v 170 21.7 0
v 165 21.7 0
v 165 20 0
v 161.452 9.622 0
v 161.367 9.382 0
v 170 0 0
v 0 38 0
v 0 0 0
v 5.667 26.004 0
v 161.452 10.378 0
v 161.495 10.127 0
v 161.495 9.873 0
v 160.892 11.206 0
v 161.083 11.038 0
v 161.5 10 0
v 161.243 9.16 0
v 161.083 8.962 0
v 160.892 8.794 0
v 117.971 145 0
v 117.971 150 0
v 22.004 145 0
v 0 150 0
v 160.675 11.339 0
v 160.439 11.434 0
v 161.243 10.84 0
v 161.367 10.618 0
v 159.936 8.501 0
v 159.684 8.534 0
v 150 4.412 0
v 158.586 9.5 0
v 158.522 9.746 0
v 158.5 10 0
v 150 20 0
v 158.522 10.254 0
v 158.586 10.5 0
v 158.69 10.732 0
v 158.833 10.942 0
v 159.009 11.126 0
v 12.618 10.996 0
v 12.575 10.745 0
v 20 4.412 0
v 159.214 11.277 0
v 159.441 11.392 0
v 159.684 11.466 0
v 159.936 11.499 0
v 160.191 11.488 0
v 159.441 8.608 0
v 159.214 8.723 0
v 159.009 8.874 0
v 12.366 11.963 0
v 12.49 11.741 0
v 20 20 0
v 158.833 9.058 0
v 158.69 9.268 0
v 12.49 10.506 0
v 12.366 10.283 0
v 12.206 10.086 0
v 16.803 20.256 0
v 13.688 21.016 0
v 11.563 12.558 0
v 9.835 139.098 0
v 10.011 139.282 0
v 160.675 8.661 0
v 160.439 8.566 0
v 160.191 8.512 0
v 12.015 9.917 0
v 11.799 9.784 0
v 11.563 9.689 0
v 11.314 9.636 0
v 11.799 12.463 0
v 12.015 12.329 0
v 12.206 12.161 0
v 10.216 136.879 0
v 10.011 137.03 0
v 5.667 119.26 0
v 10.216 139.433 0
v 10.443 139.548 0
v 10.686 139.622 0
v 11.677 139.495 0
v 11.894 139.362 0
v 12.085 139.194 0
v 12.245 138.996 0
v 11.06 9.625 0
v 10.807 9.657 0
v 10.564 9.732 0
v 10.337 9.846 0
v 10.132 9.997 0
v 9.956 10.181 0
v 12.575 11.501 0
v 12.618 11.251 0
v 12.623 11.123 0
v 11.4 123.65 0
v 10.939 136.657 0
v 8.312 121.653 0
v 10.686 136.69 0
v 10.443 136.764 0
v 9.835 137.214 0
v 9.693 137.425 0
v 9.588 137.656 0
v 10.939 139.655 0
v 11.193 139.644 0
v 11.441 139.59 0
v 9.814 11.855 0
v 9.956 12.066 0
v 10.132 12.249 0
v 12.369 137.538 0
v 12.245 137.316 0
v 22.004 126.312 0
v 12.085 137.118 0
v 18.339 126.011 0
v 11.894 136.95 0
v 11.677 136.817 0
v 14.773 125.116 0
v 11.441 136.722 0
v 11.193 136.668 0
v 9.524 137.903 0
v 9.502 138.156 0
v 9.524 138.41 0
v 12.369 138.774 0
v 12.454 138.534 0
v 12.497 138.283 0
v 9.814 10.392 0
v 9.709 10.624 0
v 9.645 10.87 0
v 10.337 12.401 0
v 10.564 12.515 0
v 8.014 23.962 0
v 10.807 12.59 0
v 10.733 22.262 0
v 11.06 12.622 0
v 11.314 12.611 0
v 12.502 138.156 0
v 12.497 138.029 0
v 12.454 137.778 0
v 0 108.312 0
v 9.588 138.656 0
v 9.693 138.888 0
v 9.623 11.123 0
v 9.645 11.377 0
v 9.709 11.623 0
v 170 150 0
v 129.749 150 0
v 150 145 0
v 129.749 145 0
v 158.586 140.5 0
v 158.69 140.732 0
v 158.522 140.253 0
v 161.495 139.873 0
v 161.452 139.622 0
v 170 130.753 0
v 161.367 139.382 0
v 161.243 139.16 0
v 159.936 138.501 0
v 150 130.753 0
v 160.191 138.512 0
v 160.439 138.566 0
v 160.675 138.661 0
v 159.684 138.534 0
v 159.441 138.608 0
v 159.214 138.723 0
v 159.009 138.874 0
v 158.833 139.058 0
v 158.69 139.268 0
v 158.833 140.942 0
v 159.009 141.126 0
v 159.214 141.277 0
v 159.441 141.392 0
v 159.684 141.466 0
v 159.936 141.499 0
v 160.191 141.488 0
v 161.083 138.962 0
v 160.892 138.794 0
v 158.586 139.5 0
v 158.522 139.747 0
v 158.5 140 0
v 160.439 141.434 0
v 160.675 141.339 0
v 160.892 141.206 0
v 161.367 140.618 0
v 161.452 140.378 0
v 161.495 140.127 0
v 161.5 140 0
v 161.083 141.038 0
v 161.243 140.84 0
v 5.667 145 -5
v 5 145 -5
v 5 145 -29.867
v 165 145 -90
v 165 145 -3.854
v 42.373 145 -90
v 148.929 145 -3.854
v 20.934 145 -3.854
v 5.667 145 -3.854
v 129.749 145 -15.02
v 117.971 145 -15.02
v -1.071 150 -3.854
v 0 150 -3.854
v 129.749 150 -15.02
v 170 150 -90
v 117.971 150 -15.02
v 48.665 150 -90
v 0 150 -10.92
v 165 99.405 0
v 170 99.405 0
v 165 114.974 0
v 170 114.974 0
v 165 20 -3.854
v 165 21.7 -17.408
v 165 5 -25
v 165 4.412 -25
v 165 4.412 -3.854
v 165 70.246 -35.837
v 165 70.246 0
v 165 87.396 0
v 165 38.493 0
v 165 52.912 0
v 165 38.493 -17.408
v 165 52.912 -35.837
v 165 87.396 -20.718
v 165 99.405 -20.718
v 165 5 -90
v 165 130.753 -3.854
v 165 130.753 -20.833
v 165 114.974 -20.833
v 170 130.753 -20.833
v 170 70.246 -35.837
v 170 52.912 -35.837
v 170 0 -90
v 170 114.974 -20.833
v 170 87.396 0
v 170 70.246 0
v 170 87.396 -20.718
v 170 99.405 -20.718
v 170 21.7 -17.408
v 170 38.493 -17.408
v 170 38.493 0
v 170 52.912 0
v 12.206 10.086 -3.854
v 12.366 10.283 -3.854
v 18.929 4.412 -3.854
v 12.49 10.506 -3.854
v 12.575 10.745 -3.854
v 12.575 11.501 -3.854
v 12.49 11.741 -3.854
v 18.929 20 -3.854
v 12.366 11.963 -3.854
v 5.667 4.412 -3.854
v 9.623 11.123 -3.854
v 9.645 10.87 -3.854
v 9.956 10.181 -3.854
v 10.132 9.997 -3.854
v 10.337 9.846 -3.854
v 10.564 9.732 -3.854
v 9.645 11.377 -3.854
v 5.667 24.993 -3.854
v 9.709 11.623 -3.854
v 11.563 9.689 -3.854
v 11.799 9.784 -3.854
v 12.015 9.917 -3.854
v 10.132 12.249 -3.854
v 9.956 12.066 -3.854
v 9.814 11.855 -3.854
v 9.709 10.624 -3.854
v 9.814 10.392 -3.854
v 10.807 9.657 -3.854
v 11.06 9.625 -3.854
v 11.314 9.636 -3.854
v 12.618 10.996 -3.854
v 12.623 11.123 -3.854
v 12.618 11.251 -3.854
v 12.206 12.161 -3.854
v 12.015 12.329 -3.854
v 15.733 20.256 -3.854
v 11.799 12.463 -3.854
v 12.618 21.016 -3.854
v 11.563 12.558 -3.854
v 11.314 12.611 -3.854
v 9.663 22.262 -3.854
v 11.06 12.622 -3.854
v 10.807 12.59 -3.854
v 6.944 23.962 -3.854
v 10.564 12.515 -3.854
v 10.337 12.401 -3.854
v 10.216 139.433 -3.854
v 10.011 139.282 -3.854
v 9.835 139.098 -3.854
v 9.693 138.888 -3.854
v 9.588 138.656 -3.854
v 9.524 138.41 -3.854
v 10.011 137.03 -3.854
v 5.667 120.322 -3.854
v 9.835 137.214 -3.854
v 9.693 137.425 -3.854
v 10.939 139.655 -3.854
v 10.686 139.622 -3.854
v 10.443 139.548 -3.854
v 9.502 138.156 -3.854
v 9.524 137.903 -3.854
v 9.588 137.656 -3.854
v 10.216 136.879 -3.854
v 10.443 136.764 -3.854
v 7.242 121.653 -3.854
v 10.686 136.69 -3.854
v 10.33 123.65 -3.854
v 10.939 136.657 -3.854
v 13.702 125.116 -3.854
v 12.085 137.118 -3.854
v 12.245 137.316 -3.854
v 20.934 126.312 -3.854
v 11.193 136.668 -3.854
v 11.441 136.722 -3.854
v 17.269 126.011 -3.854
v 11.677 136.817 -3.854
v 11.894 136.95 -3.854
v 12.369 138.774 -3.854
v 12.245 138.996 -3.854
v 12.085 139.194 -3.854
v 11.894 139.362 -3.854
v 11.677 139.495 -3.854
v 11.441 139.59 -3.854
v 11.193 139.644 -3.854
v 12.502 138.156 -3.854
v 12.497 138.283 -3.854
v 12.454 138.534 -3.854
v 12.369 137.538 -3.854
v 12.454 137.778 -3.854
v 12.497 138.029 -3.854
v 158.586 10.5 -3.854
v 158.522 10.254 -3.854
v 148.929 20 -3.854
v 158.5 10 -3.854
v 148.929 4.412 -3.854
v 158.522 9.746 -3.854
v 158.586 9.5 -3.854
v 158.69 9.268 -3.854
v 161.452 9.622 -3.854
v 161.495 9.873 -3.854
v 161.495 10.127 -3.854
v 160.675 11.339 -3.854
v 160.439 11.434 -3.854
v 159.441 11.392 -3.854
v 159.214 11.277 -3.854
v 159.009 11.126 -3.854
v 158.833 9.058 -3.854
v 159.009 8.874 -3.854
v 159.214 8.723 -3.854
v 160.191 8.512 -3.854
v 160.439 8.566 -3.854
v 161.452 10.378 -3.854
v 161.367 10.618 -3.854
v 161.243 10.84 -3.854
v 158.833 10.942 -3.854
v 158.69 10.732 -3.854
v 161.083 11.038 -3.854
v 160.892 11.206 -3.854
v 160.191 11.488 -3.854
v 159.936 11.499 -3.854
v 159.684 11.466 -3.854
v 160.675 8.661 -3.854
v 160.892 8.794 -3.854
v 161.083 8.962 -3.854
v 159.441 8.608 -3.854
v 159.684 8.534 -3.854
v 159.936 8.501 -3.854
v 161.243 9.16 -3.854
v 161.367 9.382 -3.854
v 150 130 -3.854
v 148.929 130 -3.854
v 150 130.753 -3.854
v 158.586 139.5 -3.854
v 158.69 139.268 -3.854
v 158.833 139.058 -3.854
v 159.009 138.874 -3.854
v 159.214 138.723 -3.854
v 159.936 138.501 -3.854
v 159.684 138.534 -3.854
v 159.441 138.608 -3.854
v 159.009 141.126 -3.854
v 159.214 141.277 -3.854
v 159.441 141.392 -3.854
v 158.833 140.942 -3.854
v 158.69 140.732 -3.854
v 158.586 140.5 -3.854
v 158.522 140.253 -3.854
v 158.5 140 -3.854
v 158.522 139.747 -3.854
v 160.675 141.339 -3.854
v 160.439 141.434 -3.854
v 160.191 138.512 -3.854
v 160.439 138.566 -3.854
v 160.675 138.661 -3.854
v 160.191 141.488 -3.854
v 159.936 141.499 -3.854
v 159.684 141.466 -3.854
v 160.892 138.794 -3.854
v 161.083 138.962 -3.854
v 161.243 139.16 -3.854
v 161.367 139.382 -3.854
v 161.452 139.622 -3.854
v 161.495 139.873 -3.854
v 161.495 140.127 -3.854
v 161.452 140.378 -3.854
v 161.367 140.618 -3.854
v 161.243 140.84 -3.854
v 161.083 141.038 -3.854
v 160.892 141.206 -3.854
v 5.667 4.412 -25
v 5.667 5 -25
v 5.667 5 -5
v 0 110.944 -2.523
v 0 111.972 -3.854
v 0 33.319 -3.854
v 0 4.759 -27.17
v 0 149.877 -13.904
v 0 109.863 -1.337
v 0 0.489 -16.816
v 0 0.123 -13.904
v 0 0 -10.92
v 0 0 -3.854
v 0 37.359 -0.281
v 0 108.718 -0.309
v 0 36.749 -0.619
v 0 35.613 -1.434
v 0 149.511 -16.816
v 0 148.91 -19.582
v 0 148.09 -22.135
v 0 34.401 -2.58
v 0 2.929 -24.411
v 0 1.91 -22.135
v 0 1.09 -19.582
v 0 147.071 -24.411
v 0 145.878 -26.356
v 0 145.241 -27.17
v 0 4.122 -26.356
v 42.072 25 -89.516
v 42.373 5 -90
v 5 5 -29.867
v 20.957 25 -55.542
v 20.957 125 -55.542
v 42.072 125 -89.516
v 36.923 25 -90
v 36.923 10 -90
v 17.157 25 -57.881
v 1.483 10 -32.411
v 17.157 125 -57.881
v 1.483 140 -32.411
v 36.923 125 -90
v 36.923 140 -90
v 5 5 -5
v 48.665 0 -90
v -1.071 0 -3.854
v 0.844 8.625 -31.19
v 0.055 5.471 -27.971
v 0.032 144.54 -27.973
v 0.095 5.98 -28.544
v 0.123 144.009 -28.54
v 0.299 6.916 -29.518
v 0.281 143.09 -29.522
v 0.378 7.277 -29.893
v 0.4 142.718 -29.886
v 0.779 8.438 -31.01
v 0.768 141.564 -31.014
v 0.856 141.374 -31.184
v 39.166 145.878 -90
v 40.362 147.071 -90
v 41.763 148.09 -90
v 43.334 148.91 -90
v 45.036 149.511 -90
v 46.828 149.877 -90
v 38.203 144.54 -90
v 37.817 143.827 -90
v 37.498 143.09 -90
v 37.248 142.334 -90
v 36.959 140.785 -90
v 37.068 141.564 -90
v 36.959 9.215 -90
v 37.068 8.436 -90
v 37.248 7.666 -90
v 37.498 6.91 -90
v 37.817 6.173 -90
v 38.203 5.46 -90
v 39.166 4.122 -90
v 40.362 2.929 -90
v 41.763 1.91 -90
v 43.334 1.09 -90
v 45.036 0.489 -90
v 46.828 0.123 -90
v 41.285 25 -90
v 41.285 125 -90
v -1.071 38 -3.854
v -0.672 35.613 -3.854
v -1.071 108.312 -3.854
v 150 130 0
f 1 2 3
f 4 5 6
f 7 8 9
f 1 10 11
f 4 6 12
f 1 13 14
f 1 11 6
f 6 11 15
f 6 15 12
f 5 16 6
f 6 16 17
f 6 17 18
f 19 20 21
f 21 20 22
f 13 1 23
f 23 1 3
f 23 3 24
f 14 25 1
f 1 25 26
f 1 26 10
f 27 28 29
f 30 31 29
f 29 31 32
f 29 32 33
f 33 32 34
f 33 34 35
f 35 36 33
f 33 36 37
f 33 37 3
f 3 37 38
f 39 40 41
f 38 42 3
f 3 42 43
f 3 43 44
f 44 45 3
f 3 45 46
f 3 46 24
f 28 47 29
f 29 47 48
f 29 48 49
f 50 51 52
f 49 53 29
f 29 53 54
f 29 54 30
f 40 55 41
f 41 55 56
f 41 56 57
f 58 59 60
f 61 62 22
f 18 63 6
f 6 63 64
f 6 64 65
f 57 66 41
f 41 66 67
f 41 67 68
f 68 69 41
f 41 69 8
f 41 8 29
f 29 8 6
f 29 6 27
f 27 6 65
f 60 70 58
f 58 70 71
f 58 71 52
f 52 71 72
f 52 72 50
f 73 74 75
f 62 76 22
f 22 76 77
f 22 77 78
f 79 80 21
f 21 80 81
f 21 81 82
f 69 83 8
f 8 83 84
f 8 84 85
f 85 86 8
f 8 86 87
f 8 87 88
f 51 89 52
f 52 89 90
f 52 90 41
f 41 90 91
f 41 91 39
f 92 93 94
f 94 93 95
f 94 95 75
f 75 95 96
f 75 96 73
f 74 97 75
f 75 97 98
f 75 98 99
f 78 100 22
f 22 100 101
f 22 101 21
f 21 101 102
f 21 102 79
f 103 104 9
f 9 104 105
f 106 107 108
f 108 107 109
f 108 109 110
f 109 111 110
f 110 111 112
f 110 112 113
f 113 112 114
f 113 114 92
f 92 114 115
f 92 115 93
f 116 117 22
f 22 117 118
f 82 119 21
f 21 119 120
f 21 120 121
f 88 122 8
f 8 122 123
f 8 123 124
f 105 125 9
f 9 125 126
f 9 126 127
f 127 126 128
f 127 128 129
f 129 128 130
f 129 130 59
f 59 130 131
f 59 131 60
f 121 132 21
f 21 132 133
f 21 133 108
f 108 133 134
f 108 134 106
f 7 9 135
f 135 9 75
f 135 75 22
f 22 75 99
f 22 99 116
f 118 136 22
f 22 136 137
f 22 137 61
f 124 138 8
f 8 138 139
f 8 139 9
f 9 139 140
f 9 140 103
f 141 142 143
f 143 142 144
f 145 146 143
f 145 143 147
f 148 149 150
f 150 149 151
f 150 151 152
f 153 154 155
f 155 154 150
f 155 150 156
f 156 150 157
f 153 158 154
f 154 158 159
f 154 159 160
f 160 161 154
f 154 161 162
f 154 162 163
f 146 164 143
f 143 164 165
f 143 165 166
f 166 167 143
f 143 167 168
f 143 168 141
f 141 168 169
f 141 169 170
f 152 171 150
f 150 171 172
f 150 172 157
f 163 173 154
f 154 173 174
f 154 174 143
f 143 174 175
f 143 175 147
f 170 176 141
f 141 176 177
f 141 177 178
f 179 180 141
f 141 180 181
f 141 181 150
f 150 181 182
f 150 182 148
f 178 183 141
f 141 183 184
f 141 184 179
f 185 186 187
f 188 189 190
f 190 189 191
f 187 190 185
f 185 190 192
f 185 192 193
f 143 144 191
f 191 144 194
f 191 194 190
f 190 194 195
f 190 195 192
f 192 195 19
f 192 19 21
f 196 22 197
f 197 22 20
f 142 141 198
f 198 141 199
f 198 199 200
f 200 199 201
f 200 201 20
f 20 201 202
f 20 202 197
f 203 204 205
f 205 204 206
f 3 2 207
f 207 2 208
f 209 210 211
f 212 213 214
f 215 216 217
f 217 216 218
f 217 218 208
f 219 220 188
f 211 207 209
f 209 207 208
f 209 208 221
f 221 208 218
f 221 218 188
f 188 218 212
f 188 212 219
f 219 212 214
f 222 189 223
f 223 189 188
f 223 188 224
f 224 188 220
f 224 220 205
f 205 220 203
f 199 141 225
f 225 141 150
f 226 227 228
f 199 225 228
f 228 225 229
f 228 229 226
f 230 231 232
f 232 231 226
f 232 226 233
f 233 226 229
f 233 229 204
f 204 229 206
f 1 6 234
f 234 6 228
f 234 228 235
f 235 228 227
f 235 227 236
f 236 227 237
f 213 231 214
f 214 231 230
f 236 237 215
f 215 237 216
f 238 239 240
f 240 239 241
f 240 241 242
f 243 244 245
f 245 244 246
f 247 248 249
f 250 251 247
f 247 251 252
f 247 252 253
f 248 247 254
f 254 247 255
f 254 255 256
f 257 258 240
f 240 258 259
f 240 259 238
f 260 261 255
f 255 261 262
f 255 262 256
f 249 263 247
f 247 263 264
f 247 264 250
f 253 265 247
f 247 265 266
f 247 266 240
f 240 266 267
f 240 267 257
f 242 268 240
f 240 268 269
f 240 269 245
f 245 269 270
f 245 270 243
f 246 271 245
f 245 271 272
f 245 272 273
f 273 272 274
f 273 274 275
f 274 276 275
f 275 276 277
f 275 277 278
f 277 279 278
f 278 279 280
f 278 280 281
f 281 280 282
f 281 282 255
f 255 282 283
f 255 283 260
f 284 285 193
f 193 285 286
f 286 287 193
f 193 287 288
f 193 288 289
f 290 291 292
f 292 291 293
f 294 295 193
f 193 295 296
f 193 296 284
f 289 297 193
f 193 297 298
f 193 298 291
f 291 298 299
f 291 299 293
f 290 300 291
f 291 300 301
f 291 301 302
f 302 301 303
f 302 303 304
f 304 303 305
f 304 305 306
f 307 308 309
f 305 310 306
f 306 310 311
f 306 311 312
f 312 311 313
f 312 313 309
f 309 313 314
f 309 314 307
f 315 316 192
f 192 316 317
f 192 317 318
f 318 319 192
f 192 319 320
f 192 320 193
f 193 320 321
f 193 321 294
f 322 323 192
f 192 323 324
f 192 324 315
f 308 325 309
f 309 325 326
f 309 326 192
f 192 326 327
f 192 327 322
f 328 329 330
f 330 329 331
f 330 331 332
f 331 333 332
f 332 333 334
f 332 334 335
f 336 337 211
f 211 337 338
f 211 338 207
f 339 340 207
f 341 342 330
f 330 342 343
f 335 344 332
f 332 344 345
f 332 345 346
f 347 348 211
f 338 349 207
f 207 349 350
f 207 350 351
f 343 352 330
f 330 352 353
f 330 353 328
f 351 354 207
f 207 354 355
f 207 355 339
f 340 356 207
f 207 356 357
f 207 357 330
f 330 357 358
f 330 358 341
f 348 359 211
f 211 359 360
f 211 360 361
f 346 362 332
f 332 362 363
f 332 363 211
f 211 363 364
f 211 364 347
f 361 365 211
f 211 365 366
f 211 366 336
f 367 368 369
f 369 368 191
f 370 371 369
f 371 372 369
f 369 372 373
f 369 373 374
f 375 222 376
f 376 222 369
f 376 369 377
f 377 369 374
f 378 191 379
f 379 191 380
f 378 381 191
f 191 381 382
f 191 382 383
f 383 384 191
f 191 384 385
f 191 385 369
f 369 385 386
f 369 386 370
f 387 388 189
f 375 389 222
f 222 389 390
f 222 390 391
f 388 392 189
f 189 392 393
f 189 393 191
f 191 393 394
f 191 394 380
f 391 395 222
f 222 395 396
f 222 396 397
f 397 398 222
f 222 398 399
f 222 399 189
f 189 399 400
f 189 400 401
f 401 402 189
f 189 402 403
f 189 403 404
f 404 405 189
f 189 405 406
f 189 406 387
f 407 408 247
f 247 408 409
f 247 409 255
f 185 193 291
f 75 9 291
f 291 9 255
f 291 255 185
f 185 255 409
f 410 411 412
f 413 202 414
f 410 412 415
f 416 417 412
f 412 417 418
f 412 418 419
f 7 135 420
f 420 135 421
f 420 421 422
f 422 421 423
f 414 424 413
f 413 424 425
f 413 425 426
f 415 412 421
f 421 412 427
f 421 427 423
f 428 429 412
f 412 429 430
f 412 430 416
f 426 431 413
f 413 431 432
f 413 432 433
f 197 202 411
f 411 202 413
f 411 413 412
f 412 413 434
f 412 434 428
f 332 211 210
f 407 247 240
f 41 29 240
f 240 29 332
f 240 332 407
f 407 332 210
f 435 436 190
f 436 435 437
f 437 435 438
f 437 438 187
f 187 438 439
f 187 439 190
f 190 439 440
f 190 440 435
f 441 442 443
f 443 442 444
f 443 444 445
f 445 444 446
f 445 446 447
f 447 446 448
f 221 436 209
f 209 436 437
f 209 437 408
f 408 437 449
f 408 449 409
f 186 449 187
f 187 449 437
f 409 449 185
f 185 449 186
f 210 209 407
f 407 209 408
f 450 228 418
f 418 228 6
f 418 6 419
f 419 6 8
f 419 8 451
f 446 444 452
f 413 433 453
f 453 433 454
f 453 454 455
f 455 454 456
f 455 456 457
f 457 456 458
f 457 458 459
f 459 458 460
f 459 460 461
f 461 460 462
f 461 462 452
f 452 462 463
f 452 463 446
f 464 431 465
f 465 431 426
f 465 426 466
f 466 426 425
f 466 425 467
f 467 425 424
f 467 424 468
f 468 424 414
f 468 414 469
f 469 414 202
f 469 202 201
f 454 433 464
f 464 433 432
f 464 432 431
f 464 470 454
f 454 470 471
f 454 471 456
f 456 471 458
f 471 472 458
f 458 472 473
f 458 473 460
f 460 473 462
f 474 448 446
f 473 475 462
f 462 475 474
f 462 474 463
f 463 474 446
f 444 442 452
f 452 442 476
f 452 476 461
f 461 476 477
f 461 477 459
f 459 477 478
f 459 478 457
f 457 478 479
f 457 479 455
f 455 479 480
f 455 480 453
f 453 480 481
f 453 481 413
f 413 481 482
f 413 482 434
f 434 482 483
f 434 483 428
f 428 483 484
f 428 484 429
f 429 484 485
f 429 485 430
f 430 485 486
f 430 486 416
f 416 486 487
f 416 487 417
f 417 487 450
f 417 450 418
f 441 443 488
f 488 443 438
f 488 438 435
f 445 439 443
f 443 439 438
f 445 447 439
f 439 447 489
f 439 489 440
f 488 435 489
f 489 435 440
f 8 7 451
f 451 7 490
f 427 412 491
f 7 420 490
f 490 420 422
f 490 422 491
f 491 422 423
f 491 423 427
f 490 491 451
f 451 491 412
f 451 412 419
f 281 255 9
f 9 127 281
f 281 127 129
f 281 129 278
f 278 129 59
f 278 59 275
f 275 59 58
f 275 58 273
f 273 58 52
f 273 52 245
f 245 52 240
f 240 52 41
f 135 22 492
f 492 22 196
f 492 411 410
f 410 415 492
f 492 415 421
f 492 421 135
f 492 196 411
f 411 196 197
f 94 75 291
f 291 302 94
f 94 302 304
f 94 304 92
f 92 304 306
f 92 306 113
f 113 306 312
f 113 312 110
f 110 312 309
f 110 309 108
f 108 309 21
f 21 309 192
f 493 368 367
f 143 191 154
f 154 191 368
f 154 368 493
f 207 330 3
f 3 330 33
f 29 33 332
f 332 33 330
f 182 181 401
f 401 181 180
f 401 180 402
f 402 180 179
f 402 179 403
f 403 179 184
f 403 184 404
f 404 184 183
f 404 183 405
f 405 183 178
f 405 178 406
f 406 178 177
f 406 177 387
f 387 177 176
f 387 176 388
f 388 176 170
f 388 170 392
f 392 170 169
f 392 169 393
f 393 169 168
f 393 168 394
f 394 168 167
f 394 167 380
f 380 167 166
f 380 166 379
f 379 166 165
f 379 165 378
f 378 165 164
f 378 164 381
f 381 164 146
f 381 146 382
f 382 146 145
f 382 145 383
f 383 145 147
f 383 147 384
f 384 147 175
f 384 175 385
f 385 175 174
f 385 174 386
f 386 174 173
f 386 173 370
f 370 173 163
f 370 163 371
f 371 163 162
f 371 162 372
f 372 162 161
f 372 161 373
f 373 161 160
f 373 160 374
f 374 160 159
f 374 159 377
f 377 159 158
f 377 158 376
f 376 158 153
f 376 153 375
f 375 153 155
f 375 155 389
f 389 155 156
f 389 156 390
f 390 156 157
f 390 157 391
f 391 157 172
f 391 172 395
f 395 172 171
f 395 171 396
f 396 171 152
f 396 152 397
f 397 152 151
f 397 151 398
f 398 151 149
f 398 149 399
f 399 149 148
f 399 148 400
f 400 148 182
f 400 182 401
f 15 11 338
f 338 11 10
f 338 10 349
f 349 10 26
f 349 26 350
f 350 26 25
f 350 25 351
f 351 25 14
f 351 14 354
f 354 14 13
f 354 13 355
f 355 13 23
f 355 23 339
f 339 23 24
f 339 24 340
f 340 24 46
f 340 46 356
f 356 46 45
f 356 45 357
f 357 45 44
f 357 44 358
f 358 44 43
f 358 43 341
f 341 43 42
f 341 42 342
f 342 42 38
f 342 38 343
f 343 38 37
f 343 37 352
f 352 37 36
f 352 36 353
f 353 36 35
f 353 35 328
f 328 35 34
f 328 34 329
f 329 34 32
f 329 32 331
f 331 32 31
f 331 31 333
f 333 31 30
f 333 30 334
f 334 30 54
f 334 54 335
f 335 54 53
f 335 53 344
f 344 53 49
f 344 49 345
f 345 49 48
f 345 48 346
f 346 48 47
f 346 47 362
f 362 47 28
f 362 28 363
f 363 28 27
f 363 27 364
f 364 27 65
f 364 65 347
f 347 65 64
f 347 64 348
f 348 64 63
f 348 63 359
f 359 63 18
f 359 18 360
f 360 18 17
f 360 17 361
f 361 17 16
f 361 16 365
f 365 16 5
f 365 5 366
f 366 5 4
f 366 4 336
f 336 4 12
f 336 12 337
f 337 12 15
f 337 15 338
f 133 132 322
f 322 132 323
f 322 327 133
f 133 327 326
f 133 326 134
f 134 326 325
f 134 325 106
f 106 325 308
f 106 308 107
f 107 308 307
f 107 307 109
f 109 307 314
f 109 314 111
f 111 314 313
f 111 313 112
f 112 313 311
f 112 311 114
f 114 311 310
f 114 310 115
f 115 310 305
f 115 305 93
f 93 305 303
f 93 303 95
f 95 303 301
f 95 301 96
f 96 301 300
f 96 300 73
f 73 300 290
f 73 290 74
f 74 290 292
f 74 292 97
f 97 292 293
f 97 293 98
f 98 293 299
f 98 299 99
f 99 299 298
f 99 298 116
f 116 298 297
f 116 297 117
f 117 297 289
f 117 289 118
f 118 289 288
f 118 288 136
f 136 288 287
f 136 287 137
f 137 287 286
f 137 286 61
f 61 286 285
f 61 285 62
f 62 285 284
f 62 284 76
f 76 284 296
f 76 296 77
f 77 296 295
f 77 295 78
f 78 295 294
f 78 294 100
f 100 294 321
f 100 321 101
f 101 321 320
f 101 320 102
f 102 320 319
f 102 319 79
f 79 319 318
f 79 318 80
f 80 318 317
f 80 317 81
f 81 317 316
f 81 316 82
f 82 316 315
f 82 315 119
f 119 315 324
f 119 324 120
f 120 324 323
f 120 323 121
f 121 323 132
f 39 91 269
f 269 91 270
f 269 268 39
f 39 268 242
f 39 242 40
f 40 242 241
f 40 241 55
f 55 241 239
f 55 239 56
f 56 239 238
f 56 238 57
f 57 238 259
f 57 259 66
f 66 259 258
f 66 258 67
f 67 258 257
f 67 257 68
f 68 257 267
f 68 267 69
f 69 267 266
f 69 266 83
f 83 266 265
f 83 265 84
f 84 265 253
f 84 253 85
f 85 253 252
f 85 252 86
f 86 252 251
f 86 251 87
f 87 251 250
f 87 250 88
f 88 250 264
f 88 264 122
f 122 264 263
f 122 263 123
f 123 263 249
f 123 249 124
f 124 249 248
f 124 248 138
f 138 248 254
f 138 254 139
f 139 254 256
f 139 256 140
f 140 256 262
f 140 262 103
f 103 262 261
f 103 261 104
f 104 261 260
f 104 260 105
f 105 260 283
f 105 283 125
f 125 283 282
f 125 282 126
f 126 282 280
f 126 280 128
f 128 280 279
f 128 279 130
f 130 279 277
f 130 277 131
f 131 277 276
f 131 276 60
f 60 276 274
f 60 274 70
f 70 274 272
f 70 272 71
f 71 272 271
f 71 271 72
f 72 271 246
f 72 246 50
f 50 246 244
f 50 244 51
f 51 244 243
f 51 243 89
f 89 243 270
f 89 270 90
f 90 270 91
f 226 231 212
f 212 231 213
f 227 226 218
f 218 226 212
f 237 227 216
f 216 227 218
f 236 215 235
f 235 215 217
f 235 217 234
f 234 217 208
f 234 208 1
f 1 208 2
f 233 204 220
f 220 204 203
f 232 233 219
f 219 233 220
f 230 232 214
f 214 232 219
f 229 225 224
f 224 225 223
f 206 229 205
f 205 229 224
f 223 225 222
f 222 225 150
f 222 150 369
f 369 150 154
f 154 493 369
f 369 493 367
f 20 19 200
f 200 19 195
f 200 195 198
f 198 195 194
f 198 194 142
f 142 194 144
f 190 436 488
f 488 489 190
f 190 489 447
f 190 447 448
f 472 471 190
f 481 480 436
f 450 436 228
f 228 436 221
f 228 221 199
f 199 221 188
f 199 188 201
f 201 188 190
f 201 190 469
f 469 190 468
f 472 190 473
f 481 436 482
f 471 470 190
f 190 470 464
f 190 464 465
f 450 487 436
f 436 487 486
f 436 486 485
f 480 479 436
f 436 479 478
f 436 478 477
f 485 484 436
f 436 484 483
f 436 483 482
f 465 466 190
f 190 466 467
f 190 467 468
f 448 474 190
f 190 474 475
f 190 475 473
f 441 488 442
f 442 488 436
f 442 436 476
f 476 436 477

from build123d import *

# Parameters (mm, degrees)
ESBO_O1_W                  = 170
ESBO_O1_H                  = 30
RESSALTO_EXTRUS_O1_DEPTH   = 150
CORTE_EXTRUS_O1_DEPTH      = 222
CORTE_EXTRUS_O1_DEPTH_BACK = 36
RESSALTO_EXTRUS_O2_DEPTH   = 5
RESSALTO_EXTRUS_O3_DEPTH   = 5
ESBO_O4_W                  = 159.333333333
ESBO_O4_H                  = 140.588235294
CORTE_EXTRUS_O2_DEPTH      = 25
CORTE_EXTRUS_O3_DEPTH      = 31
CORTE_EXTRUS_O4_DEPTH      = 42
FILETE1_R                  = 10
CORTE_EXTRUS_O5_DEPTH      = 32
CORTE_EXTRUS_O6_START      = -15.72292277
CORTE_EXTRUS_O6_OUTLINE_R  = 3.95
CORTE_EXTRUS_O6_DEPTH      = 4.876648775
CORTE_EXTRUS_O7_START      = -132.751356438
CORTE_EXTRUS_O7_OUTLINE_R  = 3.95
CORTE_EXTRUS_O7_DEPTH      = 3.479370229
RESSALTO_EXTRUS_O6_DEPTH   = 17
RESSALTO_EXTRUS_O7_DEPTH   = 4
CORTE_EXTRUS_O8_DEPTH      = 21
F_3DSKETCH12_R             = 1.5
CORTE_EXTRUS_O9_DEPTH      = 14
CORTE_EXTRUS_O10_DEPTH     = 19
ESBO_O11_W                 = 17.407525744
ESBO_O11_H                 = 16.792397695
CORTE_EXTRUS_O11_DEPTH     = 10
CORTE_EXTRUS_O12_DEPTH     = 20
CORTE_EXTRUS_O13_DEPTH     = 14
CORTE_EXTRUS_O14_DEPTH     = 131


# Read off the part's stored shape, not the designer's step: Corte-extrusão6, Corte-extrusão7
with BuildPart() as part:
    # Esboço1 → Ressalto-extrusão1 (new body)
    with BuildSketch(Plane(origin=(0, 0, 0), x_dir=(1, 0, 0), z_dir=(0, 1, 0))):
        with Locations((85, 15)):
            Rectangle(ESBO_O1_W, ESBO_O1_H)
        Polygon((80, 160), (0, 30), (170, 30), (170, 160), align=None)
        Polygon((170, 160), (170, 185), (80, 160), align=None)
    extrude(amount=RESSALTO_EXTRUS_O1_DEPTH)

    # Esboço2 → Corte-extrusão1 (cut, two sides: drawn at the far end of the back side and taken through both)
    with BuildSketch(Plane(origin=(0, 0, 0), x_dir=(1, 0, 0), z_dir=(0, 1, 0)).offset(-CORTE_EXTRUS_O1_DEPTH_BACK)):
        Polygon((84.391050739, 157.608625205), (165, 180), (165, 5), (5, 5), (5, 29.866892941), align=None)
    extrude(amount=CORTE_EXTRUS_O1_DEPTH + CORTE_EXTRUS_O1_DEPTH_BACK, mode=Mode.SUBTRACT)

    # Esboço3 → Ressalto-extrusão2 (add)
    with BuildSketch(Plane(origin=(0, 0, 0), x_dir=(1, 0, 0), z_dir=(0, 1, 0))):
        Polygon((84.391050739, 157.608625205), (165, 180), (165, 5), (5, 5), (5, 29.866892941), align=None)
    extrude(amount=RESSALTO_EXTRUS_O2_DEPTH)

    # 3DSketch2 → Ressalto-extrusão3 (add)
    with BuildSketch(Plane(origin=(165, 150, -5), x_dir=(0, 0, -1), z_dir=(0, 1, 0))):
        Polygon((0, 0), (0, 160), (24.866892941, 160), (152.608625205, 80.608949261), (175, 0), align=None)
    extrude(amount=-RESSALTO_EXTRUS_O3_DEPTH)

    # Esboço4 → Corte-extrusão2 (cut)
    with BuildSketch(Plane.XY):
        with Locations((85.333333333, 74.705882353)):
            Rectangle(ESBO_O4_W, ESBO_O4_H)
    extrude(amount=-CORTE_EXTRUS_O2_DEPTH, mode=Mode.SUBTRACT)

    # 3DSketch3 → Corte-extrusão3 (cut)
    with BuildSketch(Plane(origin=(74.759025743, 90, -151.483416833), x_dir=(-0.29071694485714406, -0.8320502943378435, 0.4724150353928592), z_dir=(-0.8516583167045438, 0, -0.5240974256643346))):
        Polygon((0, 0), (22.188007849, 33.282011774), (72.111025509, 0), (49.92301766, -33.282011774), align=None)
    extrude(amount=-CORTE_EXTRUS_O3_DEPTH, mode=Mode.SUBTRACT)

    # 3DSketch4 → Corte-extrusão4 (cut)
    with BuildSketch(Plane(origin=(69.518051487, 130, -142.966833666), x_dir=(-0.37059284368967266, -0.7071067811865471, 0.6022133709956982), z_dir=(0.8516583167045362, 0, 0.5240974256643472))):
        Polygon((0, 0), (14.142135624, -14.142135624), (28.284271247, 0), (14.142135624, 14.142135624), align=None)
    extrude(amount=CORTE_EXTRUS_O4_DEPTH, mode=Mode.SUBTRACT)

    # Filete1
    filete1_edges = [part.edges().sort_by_distance(p)[0] for p in [
        (170, 75, -185),
        (125, 0, -172.5),
        (125, 150, -172.5),
        (80, 75, -160),
        (40, 0, -95),
        (40, 150, -95),
        (0, 75, -30),
        (84.391050739, 75, -157.608625205),
    ]]
    fillet(filete1_edges, radius=FILETE1_R)

    # 3DSketch5 → Corte-extrusão5 (cut)
    with BuildSketch(Plane(origin=(38.121221288, 25, -91.946984593), x_dir=(-0.194644897392922, 0.9284766908852593, 0.31629795826349816), z_dir=(0.851658316704544, 0, 0.5240974256643347))):
        Polygon((0, 0), (14.855627054, 37.139067635), (107.703296143, 0), (92.847669089, -37.139067635), align=None)
    extrude(amount=CORTE_EXTRUS_O5_DEPTH, mode=Mode.SUBTRACT)

    # Corte-extrusão6 outline → Corte-extrusão6 (cut)
    with BuildSketch(Plane(origin=(0, 0, 0), x_dir=(0.5240974256643349, 0, -0.8516583167045437), z_dir=(0.8516583167045437, 0, 0.5240974256643349)).offset(CORTE_EXTRUS_O6_START)):
        with Locations((148.193124726, 20)):
            Circle(CORTE_EXTRUS_O6_OUTLINE_R)
    extrude(amount=CORTE_EXTRUS_O6_DEPTH, mode=Mode.SUBTRACT)

    # Corte-extrusão7 outline → Corte-extrusão7 (cut)
    with BuildSketch(Plane(origin=(0, 0, 0), x_dir=(0.9635179096299408, 0, -0.267643863786094), z_dir=(0.267643863786094, 0, 0.9635179096299409)).offset(CORTE_EXTRUS_O7_START)):
        with Locations((161.993020775, 122.164347625)):
            Circle(CORTE_EXTRUS_O7_OUTLINE_R)
    extrude(amount=CORTE_EXTRUS_O7_DEPTH, mode=Mode.SUBTRACT)

    # 3DSketch9 → Ressalto-extrusão6 (add)
    with BuildSketch(Plane(origin=(76.350750718, 26, -154.069969916), x_dir=(-0.29815073011621673, 0.8224176546598938, 0.4844949364388514), z_dir=(0.8516583167045438, 0, 0.5240974256643349))):
        Polygon((0, 0), (26.758649409, 38.684123705), (82.683049926, 0), (55.924400517, -38.684123705), align=None)
        Polygon((5.017416454, 0.222210211), (27.772783339, 33.118916398), (77.117842619, -1.01413393), (54.362475733, -33.910840117), align=None, mode=Mode.SUBTRACT)
    extrude(amount=RESSALTO_EXTRUS_O6_DEPTH)

    # 3DSketch10 → Ressalto-extrusão7 (add, along a direction that is not the sketch's normal)
    with BuildSketch(Plane(origin=(0, 0, 0), x_dir=(0.7498378553650926, 0.6616216370868463, 0), z_dir=(0, 0, 1))):
        with BuildLine():
            Line((0, 0), (14.996757107, -13.232432742))
            Line((14.996757107, -13.232432742), (28.229189849, 1.764324366))
            ThreePointArc((28.229189849, 1.764324366), (21.556867541, 14.536675999), (25.141622209, 28.493838504))
            Line((25.141622209, 28.493838504), (13.232432742, 14.996757107))
            Line((13.232432742, 14.996757107), (0, 0))
        make_face()
        with BuildLine():
            Line((99.243245563, 112.475678305), (115.742930564, 97.917132715))
            Line((115.742930564, 97.917132715), (100.070543679, 80.155094246))
            ThreePointArc((100.070543679, 80.155094246), (86.055529464, 85.755516688), (71.66166921, 81.216558438))
            Line((71.66166921, 81.216558438), (83.570858678, 94.713639835))
            Line((83.570858678, 94.713639835), (99.243245563, 112.475678305))
        make_face()
        Polygon((226.715680975, 0), (211.718923868, 13.232432742), (198.486491126, -1.764324366), (213.483248233, -14.996757107), align=None)
        Polygon((127.472435412, -112.475678305), (112.475678305, -99.243245563), (125.708111047, -84.246488456), (140.704868154, -97.478921197), align=None)
    extrude(amount=-RESSALTO_EXTRUS_O7_DEPTH, dir=(0.26764386378609445, 0, 0.9635179096299407))

    # 3DSketch11 → Corte-extrusão8 (cut)
    with BuildSketch(Plane(origin=(153.100052242, 17.26943239, -180.305570067), x_dir=(-0.07376023038027929, 0.9970655099962036, 0.02048895288341091), z_dir=(0.2676438637860946, 0, 0.9635179096299407))):
        Polygon((0, 0), (0.269964353, 3.516152018), (46.066103253, 0), (45.7961389, -3.516152018), align=None)
    extrude(amount=CORTE_EXTRUS_O8_DEPTH, mode=Mode.SUBTRACT)

    # 3DSketch12 → Corte-extrusão9 (cut)
    with BuildSketch(Plane(origin=(160, 140, 0), x_dir=(-0.7560654573770964, -0.6544960077503622, 0), z_dir=(0, 0, 1))):
        with Locations(Location((0, 0, 0), (0, 0, 319.118554366))):
            Circle(F_3DSKETCH12_R)
        with Locations(Location((85.084481008, 98.288509459, 0), (0, 0, 319.118554366))):
            Circle(F_3DSKETCH12_R)
        with Locations(Location((113.858951537, -96.124361942, 0), (0, 0, 139.118554366))):
            Circle(F_3DSKETCH12_R)
        with Locations(Location((196.909602971, 0, 0), (0, 0, 139.118554366))):
            Circle(F_3DSKETCH12_R)
    extrude(amount=-CORTE_EXTRUS_O9_DEPTH, mode=Mode.SUBTRACT)

    # 3DSketch13 → Corte-extrusão10 (cut)
    with BuildSketch(Plane(origin=(170, 70.245878967, 0), x_dir=(0, -0.4354246522459521, -0.9002251786172678), z_dir=(-1, 0, 0))):
        Polygon((0, 0), (32.261446294, -15.604350297), (39.809023237, 0), (7.547576943, 15.604350297), align=None)
    extrude(amount=CORTE_EXTRUS_O10_DEPTH, mode=Mode.SUBTRACT)

    # Esboço11 → Corte-extrusão11 (cut)
    with BuildSketch(Plane(origin=(170, 0, 0), x_dir=(0, 0, -1), z_dir=(1, 0, 0))):
        with Locations((8.703762872, 30.096304842)):
            Rectangle(ESBO_O11_W, ESBO_O11_H)
    extrude(amount=-CORTE_EXTRUS_O11_DEPTH, mode=Mode.SUBTRACT)

    # 3DSketch14 → Corte-extrusão12 (cut)
    with BuildSketch(Plane(origin=(170, 87.396079578, 0), x_dir=(0, -0.09341146144778735, -0.9956275904524686), z_dir=(1, 0, 0))):
        Polygon((0, 0), (20.627912038, 1.935345533), (19.506160301, 13.891554783), (-1.121751737, 11.956209249), align=None)
        Polygon((-2.576084268, 27.457236328), (18.165947056, 29.403288726), (16.691971594, 45.113680317), (-4.050059731, 43.167627919), align=None)
        Polygon((91.534016736, 10.656116635), (99.096194716, 11.679615344), (100.676965661, 0), (93.114787682, -1.02349871), align=None)
    extrude(amount=-CORTE_EXTRUS_O12_DEPTH, mode=Mode.SUBTRACT)

    # 3DSketch15 → Corte-extrusão13 (cut)
    with BuildSketch(Plane(origin=(129.748977416, 150, 0), x_dir=(-0.6170578351280018, 0, -0.7869178026370631), z_dir=(0, -1, 0))):
        Polygon((0, 0), (11.819817446, 9.268453377), (19.087630878, 0), (7.267813432, -9.268453377), align=None)
    extrude(amount=CORTE_EXTRUS_O13_DEPTH, mode=Mode.SUBTRACT)

    # 3DSketch16 → Corte-extrusão14 (cut, along a direction that is not the sketch's normal)
    with BuildSketch(Plane(origin=(-4.487914591, 154.677224746, -90), x_dir=(0.7478301848964537, -0.6638900621019538, 0), z_dir=(0, 0, 1))):
        Polygon((0, 0), (133.725190167, 118.715219842), (239.115232272, 0), (105.390042105, -118.715219842), align=None)
    extrude(amount=-CORTE_EXTRUS_O14_DEPTH, dir=(-0.5240974256643347, 0, 0.8516583167045438), mode=Mode.SUBTRACT)


solid = part.part
